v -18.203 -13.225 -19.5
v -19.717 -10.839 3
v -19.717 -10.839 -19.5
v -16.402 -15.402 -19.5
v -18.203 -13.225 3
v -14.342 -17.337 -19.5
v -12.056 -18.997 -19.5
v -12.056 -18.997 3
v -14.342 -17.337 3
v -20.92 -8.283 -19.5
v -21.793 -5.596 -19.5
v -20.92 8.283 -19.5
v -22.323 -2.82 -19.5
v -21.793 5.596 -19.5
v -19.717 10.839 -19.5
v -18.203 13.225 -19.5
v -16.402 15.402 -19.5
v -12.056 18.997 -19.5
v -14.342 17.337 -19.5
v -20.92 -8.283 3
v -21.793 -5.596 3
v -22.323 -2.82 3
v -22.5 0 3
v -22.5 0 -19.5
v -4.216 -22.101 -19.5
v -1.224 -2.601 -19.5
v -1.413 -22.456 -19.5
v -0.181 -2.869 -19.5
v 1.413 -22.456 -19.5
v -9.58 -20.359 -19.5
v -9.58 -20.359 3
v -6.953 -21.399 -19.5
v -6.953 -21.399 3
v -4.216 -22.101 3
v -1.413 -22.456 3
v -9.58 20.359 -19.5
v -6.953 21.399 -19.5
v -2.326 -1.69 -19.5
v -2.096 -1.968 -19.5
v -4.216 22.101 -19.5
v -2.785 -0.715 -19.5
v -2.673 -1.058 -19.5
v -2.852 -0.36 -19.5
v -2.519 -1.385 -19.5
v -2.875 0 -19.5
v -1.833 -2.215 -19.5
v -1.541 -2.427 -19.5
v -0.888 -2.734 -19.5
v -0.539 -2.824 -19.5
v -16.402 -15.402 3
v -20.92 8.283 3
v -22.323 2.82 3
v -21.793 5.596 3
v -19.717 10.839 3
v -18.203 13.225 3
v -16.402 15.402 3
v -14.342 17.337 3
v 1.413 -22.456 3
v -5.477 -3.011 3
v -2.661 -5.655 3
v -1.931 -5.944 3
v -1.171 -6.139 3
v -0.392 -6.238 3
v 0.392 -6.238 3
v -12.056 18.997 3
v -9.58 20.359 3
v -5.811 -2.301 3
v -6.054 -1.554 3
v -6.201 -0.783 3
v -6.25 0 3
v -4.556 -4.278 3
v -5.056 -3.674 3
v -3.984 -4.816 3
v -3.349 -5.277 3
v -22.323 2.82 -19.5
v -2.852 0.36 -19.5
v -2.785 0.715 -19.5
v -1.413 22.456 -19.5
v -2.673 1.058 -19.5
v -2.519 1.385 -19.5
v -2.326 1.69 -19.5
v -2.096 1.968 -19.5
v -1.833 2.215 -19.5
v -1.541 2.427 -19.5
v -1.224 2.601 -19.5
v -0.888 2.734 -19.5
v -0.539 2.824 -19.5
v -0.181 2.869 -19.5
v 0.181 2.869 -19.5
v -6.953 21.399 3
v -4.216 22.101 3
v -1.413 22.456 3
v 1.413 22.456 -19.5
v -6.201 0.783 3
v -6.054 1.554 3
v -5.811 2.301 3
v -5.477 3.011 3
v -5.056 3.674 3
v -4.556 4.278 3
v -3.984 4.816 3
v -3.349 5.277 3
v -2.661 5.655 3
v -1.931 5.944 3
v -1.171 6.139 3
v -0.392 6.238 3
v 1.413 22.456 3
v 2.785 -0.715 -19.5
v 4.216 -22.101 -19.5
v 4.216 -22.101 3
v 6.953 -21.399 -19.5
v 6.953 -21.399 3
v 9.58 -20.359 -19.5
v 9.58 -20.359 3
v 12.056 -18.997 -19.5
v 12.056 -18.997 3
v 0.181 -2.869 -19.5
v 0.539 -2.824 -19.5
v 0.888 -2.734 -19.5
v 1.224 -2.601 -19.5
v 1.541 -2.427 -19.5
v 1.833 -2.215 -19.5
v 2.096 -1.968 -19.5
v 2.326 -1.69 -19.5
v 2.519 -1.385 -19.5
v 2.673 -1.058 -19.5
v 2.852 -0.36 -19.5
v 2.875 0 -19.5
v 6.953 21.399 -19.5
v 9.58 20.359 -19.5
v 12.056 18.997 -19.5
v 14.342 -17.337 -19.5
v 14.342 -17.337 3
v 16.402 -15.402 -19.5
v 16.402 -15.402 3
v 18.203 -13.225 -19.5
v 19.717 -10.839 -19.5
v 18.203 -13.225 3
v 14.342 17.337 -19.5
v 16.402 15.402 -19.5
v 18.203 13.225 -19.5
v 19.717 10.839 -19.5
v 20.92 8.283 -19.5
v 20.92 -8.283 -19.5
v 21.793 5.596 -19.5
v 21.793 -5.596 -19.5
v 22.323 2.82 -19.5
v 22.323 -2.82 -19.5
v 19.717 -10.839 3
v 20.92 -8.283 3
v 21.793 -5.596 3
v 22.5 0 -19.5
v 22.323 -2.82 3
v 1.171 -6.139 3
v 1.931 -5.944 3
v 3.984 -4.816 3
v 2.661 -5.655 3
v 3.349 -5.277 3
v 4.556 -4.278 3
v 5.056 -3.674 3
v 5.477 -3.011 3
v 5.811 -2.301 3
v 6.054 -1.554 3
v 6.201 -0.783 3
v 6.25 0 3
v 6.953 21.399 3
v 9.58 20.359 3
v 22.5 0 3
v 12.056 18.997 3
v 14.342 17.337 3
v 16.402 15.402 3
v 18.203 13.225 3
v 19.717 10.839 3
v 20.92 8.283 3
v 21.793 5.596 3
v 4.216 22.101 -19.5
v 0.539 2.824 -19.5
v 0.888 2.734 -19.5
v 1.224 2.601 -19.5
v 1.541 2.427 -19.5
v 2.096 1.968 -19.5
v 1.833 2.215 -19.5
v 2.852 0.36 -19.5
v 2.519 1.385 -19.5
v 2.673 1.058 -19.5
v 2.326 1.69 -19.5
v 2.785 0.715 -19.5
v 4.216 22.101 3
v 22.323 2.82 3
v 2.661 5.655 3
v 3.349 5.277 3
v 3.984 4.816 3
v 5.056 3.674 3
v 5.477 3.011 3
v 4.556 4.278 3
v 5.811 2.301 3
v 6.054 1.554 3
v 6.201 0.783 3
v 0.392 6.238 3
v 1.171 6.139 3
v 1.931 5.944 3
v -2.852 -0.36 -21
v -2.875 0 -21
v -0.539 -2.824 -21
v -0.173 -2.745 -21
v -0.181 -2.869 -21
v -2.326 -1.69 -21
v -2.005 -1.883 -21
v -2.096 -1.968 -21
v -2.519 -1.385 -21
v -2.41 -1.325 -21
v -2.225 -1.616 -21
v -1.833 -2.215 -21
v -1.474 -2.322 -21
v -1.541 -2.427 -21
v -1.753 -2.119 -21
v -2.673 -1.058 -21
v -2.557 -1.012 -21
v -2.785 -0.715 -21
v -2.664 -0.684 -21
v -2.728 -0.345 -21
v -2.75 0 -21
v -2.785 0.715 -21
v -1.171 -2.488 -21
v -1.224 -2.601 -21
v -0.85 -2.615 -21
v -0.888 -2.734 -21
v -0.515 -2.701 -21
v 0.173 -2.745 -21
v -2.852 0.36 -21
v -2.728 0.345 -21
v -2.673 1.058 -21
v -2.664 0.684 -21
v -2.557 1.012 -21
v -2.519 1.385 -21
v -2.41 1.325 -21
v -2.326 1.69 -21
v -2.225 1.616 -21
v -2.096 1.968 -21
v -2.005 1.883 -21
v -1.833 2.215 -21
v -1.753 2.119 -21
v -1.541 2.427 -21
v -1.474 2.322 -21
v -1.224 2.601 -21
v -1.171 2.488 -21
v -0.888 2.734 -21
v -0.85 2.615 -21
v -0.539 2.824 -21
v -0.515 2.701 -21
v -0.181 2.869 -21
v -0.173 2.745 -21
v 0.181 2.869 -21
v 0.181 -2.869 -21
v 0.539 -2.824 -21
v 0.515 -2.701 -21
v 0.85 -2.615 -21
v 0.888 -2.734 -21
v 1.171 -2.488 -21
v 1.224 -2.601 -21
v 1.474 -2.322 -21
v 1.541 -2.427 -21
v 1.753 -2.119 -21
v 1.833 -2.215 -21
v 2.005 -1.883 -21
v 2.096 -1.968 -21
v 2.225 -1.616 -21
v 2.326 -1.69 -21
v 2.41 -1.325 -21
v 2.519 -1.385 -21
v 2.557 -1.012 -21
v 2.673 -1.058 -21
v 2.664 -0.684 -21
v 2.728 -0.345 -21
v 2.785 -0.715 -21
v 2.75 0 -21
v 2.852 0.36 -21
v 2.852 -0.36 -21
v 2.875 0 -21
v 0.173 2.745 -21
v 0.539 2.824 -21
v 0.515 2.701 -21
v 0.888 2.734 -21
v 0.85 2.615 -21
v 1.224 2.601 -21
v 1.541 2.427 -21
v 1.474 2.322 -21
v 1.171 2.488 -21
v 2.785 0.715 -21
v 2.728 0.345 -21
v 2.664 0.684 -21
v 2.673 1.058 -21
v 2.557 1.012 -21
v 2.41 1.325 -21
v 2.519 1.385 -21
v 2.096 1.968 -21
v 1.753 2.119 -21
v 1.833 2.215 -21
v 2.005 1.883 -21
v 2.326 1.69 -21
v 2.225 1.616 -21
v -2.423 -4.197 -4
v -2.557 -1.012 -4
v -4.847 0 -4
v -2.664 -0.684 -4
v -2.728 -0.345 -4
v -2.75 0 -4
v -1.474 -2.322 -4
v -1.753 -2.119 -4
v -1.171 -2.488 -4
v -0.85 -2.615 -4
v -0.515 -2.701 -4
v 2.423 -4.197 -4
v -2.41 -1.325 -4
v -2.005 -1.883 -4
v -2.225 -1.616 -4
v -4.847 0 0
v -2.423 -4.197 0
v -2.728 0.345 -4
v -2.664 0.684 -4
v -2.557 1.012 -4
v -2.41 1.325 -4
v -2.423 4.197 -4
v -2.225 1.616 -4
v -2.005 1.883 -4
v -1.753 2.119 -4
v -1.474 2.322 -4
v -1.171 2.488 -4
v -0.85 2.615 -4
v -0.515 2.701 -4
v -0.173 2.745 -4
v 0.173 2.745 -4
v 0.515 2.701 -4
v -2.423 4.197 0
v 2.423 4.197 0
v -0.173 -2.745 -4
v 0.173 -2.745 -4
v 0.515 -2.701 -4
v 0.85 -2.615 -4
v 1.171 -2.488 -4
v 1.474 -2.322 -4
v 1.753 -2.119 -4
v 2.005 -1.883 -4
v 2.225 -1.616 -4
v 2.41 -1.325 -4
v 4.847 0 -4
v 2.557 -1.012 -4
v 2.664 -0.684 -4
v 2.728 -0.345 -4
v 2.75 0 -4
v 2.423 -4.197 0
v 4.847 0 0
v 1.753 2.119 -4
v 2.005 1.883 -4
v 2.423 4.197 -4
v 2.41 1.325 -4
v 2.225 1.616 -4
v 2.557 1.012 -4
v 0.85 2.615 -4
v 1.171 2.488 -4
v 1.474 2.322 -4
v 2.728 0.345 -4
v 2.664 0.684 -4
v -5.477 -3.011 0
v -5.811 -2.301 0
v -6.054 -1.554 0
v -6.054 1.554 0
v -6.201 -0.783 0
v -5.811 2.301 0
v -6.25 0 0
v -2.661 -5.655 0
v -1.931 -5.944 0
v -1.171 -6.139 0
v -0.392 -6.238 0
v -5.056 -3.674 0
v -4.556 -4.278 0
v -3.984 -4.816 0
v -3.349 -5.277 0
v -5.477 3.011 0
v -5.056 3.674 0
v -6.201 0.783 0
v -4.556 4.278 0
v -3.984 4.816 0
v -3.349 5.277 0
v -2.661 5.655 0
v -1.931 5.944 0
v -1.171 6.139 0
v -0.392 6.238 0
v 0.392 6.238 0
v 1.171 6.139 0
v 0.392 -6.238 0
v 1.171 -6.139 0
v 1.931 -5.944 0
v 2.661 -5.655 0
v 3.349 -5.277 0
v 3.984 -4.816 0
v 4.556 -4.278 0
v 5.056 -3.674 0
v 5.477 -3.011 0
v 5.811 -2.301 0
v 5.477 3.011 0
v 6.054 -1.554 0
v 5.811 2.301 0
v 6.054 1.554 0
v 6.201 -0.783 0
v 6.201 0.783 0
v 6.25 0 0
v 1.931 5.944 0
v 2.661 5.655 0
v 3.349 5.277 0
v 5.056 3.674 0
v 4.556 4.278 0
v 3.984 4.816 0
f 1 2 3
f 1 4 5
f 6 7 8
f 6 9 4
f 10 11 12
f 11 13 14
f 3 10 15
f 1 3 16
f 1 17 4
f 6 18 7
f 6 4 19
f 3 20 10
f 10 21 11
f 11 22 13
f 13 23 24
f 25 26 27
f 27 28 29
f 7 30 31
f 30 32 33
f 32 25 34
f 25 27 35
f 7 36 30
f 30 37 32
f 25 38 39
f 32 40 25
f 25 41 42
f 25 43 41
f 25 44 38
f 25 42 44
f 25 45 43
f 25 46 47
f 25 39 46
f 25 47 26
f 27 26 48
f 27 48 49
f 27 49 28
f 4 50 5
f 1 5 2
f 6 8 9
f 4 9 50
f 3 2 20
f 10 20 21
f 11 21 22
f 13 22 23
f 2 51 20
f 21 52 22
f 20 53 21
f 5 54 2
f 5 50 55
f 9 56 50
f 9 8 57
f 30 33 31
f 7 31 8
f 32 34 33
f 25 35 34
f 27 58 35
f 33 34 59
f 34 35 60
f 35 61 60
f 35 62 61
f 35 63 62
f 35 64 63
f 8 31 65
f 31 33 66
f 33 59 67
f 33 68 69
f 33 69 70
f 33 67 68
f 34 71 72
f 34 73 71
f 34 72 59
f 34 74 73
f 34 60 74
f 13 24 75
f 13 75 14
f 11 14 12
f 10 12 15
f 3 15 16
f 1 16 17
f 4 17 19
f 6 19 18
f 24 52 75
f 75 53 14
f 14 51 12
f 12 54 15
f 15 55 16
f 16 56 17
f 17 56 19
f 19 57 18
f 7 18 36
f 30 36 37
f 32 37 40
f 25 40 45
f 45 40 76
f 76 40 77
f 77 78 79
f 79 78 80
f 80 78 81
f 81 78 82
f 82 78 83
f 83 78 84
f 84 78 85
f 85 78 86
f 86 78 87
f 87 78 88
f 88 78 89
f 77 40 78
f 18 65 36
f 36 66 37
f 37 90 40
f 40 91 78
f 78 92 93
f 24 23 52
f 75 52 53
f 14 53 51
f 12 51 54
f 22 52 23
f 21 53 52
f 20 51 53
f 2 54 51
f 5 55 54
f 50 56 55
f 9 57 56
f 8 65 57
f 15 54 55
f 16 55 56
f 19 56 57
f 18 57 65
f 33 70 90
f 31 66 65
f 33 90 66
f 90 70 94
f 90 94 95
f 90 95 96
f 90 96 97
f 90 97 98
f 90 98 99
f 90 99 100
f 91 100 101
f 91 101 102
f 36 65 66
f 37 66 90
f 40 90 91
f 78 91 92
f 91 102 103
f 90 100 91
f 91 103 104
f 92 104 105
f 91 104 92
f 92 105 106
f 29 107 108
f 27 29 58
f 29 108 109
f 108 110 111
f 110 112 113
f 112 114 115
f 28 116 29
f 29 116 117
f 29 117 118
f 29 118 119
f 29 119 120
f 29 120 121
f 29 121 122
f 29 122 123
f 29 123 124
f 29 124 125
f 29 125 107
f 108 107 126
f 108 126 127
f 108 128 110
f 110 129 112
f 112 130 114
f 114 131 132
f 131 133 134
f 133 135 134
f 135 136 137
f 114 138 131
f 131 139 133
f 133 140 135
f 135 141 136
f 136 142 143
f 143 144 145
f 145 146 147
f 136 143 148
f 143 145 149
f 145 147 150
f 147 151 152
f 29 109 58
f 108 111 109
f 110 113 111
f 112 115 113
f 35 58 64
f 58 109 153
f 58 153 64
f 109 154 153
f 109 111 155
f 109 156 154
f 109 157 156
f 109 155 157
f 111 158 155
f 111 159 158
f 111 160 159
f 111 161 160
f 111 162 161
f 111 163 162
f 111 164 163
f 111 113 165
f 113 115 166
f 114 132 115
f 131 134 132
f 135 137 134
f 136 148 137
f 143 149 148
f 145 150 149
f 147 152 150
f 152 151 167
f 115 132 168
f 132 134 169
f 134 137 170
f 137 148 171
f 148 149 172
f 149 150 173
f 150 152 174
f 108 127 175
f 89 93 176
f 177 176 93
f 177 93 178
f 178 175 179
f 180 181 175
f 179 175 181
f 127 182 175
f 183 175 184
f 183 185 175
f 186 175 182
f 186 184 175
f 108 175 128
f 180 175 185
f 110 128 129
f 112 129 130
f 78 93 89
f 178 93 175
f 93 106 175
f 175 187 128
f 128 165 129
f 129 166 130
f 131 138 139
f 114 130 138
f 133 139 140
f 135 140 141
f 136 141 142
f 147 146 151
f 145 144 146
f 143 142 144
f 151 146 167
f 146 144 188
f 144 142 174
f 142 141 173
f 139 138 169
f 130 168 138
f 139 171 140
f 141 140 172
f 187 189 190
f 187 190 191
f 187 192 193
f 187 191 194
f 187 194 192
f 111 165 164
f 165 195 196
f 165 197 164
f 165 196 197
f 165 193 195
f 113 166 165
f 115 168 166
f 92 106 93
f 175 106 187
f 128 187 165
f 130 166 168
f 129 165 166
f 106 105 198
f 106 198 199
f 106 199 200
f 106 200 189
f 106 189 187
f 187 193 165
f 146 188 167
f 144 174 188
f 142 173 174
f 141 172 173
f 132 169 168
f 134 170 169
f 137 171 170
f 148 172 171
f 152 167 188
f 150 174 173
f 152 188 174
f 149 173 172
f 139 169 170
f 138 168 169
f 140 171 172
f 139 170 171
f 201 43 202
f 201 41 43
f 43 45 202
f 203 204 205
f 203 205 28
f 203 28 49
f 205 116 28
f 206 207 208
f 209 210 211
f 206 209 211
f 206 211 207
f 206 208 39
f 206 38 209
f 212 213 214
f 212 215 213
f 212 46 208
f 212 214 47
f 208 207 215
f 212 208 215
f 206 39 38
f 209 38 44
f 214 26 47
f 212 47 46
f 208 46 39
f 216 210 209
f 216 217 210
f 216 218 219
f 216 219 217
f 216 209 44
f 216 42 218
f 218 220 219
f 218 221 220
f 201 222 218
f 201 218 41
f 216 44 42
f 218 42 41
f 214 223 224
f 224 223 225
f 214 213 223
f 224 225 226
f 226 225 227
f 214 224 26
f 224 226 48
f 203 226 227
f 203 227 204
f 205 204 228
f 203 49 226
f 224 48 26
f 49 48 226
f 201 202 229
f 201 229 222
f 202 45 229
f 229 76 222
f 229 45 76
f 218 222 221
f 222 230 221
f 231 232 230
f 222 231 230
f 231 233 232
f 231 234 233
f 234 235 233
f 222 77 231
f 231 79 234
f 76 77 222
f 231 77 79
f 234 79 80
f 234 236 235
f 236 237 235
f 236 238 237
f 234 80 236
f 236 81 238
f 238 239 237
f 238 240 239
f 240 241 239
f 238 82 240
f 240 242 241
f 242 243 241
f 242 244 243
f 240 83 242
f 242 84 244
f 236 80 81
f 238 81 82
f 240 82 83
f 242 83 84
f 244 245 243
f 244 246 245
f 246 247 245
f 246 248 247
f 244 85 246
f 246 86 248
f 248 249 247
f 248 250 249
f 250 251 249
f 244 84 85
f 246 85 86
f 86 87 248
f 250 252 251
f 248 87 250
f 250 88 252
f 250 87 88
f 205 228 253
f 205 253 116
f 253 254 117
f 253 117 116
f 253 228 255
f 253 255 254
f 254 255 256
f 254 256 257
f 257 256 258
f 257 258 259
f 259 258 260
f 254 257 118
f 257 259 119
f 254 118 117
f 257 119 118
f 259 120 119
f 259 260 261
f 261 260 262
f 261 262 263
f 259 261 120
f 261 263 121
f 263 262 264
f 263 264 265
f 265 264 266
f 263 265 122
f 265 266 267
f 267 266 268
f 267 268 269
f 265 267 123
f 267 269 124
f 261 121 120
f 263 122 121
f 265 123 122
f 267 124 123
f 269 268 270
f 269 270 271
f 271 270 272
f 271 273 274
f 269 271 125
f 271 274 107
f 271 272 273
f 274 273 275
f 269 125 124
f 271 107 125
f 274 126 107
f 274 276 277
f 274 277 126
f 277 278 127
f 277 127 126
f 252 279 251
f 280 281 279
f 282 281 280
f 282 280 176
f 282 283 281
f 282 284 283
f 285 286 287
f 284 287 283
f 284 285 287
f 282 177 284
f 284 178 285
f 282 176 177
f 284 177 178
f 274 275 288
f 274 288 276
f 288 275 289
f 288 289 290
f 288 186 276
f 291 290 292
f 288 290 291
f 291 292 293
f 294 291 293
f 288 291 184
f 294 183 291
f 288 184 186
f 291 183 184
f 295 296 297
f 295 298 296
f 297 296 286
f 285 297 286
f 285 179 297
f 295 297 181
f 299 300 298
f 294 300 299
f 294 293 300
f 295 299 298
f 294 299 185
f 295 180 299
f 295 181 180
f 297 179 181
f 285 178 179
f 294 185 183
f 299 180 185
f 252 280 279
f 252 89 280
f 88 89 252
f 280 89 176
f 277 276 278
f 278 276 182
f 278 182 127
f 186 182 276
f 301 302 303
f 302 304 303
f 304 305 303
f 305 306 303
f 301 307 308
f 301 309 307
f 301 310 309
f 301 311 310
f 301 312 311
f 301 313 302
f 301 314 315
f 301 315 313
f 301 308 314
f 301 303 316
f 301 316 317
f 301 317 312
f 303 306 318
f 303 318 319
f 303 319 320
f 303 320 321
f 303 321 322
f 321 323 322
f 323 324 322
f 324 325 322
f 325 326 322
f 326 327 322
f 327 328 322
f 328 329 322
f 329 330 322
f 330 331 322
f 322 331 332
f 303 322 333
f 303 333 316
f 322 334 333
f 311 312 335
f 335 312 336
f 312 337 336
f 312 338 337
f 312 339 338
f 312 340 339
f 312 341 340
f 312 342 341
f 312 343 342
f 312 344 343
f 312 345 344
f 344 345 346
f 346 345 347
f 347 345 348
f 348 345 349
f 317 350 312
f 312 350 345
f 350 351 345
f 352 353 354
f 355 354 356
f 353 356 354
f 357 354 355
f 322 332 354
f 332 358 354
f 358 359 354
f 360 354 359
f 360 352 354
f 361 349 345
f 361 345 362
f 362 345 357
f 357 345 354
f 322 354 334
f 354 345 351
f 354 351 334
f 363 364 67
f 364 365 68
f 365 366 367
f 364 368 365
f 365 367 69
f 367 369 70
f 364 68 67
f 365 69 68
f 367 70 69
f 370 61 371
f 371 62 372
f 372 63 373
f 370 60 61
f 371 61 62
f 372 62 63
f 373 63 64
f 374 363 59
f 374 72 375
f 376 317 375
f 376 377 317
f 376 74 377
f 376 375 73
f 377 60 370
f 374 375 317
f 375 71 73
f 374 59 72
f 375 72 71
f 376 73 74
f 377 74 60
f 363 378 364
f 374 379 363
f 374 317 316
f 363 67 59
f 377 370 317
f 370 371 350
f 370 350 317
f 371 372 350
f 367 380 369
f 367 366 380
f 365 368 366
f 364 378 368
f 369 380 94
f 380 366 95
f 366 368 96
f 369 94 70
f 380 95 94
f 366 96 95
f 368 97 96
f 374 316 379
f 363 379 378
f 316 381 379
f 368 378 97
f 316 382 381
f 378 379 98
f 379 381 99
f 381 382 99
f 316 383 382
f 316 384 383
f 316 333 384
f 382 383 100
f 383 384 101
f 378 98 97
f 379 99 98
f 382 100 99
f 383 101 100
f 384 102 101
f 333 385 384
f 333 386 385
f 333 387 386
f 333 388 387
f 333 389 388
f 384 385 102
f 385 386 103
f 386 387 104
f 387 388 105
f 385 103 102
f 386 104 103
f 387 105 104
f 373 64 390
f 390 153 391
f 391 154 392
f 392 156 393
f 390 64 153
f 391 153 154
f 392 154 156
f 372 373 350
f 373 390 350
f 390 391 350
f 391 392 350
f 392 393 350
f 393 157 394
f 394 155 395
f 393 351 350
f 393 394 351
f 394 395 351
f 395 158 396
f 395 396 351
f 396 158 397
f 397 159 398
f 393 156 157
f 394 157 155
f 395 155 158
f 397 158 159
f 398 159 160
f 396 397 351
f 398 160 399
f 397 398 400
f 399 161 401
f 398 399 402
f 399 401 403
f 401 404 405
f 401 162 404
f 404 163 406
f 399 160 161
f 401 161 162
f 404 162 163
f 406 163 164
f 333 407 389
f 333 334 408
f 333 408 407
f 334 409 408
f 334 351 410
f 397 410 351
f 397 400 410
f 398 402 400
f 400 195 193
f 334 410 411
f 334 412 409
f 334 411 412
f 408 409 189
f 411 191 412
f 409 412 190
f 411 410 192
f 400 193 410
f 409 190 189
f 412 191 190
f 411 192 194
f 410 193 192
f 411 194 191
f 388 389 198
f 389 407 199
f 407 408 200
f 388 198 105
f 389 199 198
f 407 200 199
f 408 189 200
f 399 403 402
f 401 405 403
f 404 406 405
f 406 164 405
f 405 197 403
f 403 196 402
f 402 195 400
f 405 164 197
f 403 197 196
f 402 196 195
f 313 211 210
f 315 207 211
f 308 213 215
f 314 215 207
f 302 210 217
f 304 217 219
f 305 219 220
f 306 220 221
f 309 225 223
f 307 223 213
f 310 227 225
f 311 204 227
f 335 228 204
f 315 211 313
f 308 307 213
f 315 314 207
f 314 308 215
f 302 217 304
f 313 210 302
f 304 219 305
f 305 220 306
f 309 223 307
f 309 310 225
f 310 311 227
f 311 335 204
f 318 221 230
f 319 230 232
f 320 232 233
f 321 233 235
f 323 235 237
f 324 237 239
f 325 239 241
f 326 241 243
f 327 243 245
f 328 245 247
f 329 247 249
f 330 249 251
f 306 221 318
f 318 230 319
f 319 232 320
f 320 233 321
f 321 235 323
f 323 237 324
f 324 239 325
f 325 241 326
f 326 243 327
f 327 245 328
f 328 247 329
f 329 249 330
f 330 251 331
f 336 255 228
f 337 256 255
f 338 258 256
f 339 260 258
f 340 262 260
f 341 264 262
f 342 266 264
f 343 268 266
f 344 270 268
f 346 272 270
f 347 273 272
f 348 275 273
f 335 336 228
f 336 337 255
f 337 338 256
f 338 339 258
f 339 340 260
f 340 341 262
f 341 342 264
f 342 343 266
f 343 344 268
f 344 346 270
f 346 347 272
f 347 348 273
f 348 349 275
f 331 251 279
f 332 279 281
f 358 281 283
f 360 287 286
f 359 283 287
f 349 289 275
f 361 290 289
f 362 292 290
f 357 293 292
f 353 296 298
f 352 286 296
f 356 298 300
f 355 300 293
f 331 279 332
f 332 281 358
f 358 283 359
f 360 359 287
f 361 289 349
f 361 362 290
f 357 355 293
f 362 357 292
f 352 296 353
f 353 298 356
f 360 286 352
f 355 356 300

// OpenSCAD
$fn = 50;


difference() {
	union() {
		translate(v = [0, 0, -19.5000000000]) {
			cylinder(h = 22.5000000000, r = 22.5000000000);
		}
		#translate(v = [0, 0, -21.0000000000]) {
			cylinder(h = 21, r = 2.8750000000);
		}
	}
	union() {
		translate(v = [0, 0, 0]) {
			rotate(a = [0, 0, 0]) {
				difference() {
					union() {
						translate(v = [0, 0, -4]) {
							linear_extrude(height = 4) {
								polygon(points = [[4.8468000000, 0.0000000000], [2.4234000000, 4.1974519271], [-2.4234000000, 4.1974519271], [-4.8468000000, 0.0000000000], [-2.4234000000, -4.1974519271], [2.4234000000, -4.1974519271]]);
							}
						}
					}
					union();
				}
			}
		}
		#cylinder(h = 3, r = 6.2500000000);
		#translate(v = [0, 0, -100.0000000000]) {
			cylinder(h = 200, r = 2.7500000000);
		}
	}
}
